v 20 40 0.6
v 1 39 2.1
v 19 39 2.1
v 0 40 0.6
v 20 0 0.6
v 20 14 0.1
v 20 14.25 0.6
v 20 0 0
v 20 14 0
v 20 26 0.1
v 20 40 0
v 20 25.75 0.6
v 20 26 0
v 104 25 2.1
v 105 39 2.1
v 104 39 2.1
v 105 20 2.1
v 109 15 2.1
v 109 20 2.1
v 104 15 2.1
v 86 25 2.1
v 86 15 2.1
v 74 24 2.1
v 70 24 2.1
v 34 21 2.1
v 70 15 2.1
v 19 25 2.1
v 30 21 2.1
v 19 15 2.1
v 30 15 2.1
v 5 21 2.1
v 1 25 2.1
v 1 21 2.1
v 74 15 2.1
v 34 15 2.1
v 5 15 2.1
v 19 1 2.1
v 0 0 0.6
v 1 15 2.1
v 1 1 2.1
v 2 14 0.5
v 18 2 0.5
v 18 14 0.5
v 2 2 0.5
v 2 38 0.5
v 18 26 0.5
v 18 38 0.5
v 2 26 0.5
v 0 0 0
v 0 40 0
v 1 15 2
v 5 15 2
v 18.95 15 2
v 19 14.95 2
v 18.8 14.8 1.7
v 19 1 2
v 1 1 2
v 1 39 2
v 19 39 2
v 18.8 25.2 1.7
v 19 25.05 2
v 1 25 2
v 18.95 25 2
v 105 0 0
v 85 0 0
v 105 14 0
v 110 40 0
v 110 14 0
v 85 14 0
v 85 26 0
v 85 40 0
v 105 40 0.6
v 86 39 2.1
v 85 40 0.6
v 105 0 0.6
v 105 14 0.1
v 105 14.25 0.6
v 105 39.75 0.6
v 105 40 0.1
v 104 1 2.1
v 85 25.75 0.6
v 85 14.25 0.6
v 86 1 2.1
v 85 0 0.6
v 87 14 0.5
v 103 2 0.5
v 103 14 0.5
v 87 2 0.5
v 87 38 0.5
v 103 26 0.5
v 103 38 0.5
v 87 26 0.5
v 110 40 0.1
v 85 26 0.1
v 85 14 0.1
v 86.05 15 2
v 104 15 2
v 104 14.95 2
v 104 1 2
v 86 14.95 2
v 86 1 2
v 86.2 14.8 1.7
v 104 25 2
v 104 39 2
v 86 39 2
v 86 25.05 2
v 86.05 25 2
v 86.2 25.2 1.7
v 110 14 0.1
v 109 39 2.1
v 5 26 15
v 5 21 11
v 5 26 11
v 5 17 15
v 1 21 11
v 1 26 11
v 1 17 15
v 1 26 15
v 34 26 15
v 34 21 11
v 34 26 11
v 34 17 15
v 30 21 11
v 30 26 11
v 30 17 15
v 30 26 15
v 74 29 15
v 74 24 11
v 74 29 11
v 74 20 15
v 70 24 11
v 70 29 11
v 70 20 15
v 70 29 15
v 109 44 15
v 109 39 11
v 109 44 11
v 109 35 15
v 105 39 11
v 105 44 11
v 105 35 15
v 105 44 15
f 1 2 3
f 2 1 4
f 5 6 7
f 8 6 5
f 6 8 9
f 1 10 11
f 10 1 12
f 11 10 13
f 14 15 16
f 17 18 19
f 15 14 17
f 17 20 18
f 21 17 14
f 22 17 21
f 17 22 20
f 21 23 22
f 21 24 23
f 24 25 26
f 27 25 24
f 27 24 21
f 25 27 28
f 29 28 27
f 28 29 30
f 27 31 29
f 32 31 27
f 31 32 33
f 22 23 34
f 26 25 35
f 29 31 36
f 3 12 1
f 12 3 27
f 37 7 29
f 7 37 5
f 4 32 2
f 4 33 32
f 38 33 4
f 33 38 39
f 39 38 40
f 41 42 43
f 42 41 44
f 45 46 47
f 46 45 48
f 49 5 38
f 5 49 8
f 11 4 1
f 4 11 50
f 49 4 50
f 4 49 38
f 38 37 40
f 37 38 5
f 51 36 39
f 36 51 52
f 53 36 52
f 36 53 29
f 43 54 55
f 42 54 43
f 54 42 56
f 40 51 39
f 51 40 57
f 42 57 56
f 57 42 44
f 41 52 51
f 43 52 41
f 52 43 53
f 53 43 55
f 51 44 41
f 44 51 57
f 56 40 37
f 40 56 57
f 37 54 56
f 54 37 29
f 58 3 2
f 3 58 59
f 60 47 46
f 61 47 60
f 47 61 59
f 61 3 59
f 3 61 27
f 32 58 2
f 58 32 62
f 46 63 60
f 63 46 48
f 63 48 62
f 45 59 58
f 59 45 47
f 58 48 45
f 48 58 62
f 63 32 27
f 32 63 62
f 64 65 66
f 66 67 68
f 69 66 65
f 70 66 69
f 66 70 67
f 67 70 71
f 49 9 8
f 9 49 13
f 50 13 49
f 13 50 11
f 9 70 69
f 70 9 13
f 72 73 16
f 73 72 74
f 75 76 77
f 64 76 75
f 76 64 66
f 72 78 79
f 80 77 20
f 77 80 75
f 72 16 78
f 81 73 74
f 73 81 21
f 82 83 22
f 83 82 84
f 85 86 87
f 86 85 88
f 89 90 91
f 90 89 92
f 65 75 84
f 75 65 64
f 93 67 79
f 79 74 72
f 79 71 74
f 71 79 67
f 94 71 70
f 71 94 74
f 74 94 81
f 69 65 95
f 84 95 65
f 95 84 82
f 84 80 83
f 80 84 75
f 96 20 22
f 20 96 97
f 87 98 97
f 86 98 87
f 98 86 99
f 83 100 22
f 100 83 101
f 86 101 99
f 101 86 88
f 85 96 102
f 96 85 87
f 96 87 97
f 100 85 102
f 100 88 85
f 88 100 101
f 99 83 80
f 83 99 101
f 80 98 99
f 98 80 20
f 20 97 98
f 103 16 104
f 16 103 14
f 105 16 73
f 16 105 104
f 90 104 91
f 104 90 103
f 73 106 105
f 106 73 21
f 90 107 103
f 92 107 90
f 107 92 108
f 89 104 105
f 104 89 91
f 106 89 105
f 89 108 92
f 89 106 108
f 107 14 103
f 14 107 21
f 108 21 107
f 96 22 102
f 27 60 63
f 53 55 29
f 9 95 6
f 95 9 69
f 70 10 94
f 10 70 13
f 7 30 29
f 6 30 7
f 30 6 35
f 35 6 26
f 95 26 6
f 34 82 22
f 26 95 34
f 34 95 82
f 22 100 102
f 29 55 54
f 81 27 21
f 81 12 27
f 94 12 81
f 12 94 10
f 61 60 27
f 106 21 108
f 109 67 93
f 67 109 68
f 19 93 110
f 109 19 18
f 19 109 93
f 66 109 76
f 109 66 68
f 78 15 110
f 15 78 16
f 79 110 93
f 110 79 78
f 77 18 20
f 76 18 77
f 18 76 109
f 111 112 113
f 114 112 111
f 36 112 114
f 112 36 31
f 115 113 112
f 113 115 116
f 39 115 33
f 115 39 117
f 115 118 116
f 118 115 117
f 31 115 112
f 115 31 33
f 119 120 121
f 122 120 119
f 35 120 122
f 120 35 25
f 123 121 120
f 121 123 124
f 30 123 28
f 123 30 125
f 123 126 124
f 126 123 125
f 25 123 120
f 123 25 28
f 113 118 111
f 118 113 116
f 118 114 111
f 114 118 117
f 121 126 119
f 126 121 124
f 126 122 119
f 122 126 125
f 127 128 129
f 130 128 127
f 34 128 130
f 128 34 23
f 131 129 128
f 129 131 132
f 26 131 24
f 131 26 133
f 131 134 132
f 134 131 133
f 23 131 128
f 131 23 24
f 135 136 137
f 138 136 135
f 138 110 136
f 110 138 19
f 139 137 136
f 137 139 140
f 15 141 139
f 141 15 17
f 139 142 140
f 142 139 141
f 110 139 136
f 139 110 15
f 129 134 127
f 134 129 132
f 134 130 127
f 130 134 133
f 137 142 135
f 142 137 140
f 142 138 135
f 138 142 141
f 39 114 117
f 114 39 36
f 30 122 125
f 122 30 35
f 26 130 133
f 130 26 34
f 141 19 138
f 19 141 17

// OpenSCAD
echo(version=version());
// Base Config
base_W = 20; // Min Size < 10
base_H = 40; // Min Size < 40
base_T = 0.5; // Fix Size = 0.5 for Stapler
default_S = 12; // Fix Size = 12 for Stapler (Stapler size)
default_T = 2.0; // Fix Size = 2.0 for Stapler (base_T < default_T)
$fn = 60;



staple_base(base_T,base_W,base_H,default_S,default_T);
translate([85, 0, 0]) staple_base(base_T,base_W,base_H,default_S,default_T);

translate([18, 14, 0]) hull() {
    translate([1, 1, 2]) cube([69 - 2, 12 - 2, 0.1]);
    translate([0, 0, 0]) cube([69, 12, 0.1]);
}

translate([104, 14, 0]) hull() {
    translate([0, 1, 2]) cube([7 - 2, 26 - 2, 0.1]);
    translate([0, 0, 0]) cube([6, 26, 0.1]);
}

translate([1, 17, 2]) cube(size=[4, 4, 9], center=false);
translate([30, 17, 2]) cube(size=[4, 4, 9], center=false);
translate([1, 17, 2]) rotate([90, 0, 0]) translate([0, 9, -9]) cube(size=[4, 4, 9], center=false);
translate([30, 17, 2]) rotate([90, 0, 0]) translate([0, 9, -9]) cube(size=[4, 4, 9], center=false);

translate([70, 20, 2]) cube(size=[4, 4, 9], center=false);
translate([105, 35, 2]) cube(size=[4, 4, 9], center=false);
translate([70, 20, 2]) rotate([90, 0, 0]) translate([0, 9, -9]) cube(size=[4, 4, 9], center=false);
translate([105, 35, 2]) rotate([90, 0, 0]) translate([0, 9, -9]) cube(size=[4, 4, 9], center=false);

* translate([10, 20, 6]) {
    cylinder(h=2, r1=1.2, r2=2.8, center=true, $fn=20);
    translate([0, 0, -3]) cylinder(h=5, r=1.2, center=true, $fn=20);
    translate([75, 0, 0]) {
        cylinder(h=2, r1=1.2, r2=2.8, center=true, $fn=20);
        translate([0, 0, -3]) cylinder(h=5, r=1.2, center=true, $fn=20);
    }
}

translate([1, 16, 2]) hull(){
    translate([0, 1, 0]) cube([4, 0.1, 13]);
    translate([0, -1, 0]) cube([4, 0.1, 0.1]);
}

translate([30, 16, 2]) hull(){
    translate([0, 1, 0]) cube([4, 0.1, 13]);
    translate([0, -1, 0]) cube([4, 0.1, 0.1]);
}

translate([70, 19, 2]) hull(){
    translate([0, 1, 0]) cube([4, 0.1, 13]);
    translate([0, -4, 0]) cube([4, 0.1, 0.1]);
}

translate([105, 34, 2]) hull(){
    translate([0, 1, 0]) cube([4, 0.1, 13]);
    translate([0, -14, 0]) cube([4, 0.1, 0.1]);
}



module stapler_area(bt,bw,ds,dt) {
    hull() {
        translate([0, 0, dt - bt]) cube([bw - dt, ds + 2, 0.1]);
        translate([1, 1, 0]) cube([bw - dt * 2, ds, 0.1]);
    }
}

module staple_base(bt,bw,bh,ds,dt) {
    union() {
        // Base1(Bottom)
        cube([bw, bh, bt]);
        // Base2(Top)
        translate([0, 0, bt]) {
            difference() {
                // Base2_body
                hull() {
                    translate([1, 1, dt - bt]) cube([bw - 2, bh - 2, 0.1]);
                    translate([0, 0, 0]) cube([bw, bh, 0.1]);
                }
                // Base2_stapler_area1(Top)
                # translate([dt - 1, dt - 1, 0]) stapler_area(bt,bw,ds,dt);
                // Base2_stapler_area2(Bottom)
                # translate([dt - 1, bh - ds - dt - 1, 0]) stapler_area(bt,bw,ds,dt);
            }
        }
    }
}
